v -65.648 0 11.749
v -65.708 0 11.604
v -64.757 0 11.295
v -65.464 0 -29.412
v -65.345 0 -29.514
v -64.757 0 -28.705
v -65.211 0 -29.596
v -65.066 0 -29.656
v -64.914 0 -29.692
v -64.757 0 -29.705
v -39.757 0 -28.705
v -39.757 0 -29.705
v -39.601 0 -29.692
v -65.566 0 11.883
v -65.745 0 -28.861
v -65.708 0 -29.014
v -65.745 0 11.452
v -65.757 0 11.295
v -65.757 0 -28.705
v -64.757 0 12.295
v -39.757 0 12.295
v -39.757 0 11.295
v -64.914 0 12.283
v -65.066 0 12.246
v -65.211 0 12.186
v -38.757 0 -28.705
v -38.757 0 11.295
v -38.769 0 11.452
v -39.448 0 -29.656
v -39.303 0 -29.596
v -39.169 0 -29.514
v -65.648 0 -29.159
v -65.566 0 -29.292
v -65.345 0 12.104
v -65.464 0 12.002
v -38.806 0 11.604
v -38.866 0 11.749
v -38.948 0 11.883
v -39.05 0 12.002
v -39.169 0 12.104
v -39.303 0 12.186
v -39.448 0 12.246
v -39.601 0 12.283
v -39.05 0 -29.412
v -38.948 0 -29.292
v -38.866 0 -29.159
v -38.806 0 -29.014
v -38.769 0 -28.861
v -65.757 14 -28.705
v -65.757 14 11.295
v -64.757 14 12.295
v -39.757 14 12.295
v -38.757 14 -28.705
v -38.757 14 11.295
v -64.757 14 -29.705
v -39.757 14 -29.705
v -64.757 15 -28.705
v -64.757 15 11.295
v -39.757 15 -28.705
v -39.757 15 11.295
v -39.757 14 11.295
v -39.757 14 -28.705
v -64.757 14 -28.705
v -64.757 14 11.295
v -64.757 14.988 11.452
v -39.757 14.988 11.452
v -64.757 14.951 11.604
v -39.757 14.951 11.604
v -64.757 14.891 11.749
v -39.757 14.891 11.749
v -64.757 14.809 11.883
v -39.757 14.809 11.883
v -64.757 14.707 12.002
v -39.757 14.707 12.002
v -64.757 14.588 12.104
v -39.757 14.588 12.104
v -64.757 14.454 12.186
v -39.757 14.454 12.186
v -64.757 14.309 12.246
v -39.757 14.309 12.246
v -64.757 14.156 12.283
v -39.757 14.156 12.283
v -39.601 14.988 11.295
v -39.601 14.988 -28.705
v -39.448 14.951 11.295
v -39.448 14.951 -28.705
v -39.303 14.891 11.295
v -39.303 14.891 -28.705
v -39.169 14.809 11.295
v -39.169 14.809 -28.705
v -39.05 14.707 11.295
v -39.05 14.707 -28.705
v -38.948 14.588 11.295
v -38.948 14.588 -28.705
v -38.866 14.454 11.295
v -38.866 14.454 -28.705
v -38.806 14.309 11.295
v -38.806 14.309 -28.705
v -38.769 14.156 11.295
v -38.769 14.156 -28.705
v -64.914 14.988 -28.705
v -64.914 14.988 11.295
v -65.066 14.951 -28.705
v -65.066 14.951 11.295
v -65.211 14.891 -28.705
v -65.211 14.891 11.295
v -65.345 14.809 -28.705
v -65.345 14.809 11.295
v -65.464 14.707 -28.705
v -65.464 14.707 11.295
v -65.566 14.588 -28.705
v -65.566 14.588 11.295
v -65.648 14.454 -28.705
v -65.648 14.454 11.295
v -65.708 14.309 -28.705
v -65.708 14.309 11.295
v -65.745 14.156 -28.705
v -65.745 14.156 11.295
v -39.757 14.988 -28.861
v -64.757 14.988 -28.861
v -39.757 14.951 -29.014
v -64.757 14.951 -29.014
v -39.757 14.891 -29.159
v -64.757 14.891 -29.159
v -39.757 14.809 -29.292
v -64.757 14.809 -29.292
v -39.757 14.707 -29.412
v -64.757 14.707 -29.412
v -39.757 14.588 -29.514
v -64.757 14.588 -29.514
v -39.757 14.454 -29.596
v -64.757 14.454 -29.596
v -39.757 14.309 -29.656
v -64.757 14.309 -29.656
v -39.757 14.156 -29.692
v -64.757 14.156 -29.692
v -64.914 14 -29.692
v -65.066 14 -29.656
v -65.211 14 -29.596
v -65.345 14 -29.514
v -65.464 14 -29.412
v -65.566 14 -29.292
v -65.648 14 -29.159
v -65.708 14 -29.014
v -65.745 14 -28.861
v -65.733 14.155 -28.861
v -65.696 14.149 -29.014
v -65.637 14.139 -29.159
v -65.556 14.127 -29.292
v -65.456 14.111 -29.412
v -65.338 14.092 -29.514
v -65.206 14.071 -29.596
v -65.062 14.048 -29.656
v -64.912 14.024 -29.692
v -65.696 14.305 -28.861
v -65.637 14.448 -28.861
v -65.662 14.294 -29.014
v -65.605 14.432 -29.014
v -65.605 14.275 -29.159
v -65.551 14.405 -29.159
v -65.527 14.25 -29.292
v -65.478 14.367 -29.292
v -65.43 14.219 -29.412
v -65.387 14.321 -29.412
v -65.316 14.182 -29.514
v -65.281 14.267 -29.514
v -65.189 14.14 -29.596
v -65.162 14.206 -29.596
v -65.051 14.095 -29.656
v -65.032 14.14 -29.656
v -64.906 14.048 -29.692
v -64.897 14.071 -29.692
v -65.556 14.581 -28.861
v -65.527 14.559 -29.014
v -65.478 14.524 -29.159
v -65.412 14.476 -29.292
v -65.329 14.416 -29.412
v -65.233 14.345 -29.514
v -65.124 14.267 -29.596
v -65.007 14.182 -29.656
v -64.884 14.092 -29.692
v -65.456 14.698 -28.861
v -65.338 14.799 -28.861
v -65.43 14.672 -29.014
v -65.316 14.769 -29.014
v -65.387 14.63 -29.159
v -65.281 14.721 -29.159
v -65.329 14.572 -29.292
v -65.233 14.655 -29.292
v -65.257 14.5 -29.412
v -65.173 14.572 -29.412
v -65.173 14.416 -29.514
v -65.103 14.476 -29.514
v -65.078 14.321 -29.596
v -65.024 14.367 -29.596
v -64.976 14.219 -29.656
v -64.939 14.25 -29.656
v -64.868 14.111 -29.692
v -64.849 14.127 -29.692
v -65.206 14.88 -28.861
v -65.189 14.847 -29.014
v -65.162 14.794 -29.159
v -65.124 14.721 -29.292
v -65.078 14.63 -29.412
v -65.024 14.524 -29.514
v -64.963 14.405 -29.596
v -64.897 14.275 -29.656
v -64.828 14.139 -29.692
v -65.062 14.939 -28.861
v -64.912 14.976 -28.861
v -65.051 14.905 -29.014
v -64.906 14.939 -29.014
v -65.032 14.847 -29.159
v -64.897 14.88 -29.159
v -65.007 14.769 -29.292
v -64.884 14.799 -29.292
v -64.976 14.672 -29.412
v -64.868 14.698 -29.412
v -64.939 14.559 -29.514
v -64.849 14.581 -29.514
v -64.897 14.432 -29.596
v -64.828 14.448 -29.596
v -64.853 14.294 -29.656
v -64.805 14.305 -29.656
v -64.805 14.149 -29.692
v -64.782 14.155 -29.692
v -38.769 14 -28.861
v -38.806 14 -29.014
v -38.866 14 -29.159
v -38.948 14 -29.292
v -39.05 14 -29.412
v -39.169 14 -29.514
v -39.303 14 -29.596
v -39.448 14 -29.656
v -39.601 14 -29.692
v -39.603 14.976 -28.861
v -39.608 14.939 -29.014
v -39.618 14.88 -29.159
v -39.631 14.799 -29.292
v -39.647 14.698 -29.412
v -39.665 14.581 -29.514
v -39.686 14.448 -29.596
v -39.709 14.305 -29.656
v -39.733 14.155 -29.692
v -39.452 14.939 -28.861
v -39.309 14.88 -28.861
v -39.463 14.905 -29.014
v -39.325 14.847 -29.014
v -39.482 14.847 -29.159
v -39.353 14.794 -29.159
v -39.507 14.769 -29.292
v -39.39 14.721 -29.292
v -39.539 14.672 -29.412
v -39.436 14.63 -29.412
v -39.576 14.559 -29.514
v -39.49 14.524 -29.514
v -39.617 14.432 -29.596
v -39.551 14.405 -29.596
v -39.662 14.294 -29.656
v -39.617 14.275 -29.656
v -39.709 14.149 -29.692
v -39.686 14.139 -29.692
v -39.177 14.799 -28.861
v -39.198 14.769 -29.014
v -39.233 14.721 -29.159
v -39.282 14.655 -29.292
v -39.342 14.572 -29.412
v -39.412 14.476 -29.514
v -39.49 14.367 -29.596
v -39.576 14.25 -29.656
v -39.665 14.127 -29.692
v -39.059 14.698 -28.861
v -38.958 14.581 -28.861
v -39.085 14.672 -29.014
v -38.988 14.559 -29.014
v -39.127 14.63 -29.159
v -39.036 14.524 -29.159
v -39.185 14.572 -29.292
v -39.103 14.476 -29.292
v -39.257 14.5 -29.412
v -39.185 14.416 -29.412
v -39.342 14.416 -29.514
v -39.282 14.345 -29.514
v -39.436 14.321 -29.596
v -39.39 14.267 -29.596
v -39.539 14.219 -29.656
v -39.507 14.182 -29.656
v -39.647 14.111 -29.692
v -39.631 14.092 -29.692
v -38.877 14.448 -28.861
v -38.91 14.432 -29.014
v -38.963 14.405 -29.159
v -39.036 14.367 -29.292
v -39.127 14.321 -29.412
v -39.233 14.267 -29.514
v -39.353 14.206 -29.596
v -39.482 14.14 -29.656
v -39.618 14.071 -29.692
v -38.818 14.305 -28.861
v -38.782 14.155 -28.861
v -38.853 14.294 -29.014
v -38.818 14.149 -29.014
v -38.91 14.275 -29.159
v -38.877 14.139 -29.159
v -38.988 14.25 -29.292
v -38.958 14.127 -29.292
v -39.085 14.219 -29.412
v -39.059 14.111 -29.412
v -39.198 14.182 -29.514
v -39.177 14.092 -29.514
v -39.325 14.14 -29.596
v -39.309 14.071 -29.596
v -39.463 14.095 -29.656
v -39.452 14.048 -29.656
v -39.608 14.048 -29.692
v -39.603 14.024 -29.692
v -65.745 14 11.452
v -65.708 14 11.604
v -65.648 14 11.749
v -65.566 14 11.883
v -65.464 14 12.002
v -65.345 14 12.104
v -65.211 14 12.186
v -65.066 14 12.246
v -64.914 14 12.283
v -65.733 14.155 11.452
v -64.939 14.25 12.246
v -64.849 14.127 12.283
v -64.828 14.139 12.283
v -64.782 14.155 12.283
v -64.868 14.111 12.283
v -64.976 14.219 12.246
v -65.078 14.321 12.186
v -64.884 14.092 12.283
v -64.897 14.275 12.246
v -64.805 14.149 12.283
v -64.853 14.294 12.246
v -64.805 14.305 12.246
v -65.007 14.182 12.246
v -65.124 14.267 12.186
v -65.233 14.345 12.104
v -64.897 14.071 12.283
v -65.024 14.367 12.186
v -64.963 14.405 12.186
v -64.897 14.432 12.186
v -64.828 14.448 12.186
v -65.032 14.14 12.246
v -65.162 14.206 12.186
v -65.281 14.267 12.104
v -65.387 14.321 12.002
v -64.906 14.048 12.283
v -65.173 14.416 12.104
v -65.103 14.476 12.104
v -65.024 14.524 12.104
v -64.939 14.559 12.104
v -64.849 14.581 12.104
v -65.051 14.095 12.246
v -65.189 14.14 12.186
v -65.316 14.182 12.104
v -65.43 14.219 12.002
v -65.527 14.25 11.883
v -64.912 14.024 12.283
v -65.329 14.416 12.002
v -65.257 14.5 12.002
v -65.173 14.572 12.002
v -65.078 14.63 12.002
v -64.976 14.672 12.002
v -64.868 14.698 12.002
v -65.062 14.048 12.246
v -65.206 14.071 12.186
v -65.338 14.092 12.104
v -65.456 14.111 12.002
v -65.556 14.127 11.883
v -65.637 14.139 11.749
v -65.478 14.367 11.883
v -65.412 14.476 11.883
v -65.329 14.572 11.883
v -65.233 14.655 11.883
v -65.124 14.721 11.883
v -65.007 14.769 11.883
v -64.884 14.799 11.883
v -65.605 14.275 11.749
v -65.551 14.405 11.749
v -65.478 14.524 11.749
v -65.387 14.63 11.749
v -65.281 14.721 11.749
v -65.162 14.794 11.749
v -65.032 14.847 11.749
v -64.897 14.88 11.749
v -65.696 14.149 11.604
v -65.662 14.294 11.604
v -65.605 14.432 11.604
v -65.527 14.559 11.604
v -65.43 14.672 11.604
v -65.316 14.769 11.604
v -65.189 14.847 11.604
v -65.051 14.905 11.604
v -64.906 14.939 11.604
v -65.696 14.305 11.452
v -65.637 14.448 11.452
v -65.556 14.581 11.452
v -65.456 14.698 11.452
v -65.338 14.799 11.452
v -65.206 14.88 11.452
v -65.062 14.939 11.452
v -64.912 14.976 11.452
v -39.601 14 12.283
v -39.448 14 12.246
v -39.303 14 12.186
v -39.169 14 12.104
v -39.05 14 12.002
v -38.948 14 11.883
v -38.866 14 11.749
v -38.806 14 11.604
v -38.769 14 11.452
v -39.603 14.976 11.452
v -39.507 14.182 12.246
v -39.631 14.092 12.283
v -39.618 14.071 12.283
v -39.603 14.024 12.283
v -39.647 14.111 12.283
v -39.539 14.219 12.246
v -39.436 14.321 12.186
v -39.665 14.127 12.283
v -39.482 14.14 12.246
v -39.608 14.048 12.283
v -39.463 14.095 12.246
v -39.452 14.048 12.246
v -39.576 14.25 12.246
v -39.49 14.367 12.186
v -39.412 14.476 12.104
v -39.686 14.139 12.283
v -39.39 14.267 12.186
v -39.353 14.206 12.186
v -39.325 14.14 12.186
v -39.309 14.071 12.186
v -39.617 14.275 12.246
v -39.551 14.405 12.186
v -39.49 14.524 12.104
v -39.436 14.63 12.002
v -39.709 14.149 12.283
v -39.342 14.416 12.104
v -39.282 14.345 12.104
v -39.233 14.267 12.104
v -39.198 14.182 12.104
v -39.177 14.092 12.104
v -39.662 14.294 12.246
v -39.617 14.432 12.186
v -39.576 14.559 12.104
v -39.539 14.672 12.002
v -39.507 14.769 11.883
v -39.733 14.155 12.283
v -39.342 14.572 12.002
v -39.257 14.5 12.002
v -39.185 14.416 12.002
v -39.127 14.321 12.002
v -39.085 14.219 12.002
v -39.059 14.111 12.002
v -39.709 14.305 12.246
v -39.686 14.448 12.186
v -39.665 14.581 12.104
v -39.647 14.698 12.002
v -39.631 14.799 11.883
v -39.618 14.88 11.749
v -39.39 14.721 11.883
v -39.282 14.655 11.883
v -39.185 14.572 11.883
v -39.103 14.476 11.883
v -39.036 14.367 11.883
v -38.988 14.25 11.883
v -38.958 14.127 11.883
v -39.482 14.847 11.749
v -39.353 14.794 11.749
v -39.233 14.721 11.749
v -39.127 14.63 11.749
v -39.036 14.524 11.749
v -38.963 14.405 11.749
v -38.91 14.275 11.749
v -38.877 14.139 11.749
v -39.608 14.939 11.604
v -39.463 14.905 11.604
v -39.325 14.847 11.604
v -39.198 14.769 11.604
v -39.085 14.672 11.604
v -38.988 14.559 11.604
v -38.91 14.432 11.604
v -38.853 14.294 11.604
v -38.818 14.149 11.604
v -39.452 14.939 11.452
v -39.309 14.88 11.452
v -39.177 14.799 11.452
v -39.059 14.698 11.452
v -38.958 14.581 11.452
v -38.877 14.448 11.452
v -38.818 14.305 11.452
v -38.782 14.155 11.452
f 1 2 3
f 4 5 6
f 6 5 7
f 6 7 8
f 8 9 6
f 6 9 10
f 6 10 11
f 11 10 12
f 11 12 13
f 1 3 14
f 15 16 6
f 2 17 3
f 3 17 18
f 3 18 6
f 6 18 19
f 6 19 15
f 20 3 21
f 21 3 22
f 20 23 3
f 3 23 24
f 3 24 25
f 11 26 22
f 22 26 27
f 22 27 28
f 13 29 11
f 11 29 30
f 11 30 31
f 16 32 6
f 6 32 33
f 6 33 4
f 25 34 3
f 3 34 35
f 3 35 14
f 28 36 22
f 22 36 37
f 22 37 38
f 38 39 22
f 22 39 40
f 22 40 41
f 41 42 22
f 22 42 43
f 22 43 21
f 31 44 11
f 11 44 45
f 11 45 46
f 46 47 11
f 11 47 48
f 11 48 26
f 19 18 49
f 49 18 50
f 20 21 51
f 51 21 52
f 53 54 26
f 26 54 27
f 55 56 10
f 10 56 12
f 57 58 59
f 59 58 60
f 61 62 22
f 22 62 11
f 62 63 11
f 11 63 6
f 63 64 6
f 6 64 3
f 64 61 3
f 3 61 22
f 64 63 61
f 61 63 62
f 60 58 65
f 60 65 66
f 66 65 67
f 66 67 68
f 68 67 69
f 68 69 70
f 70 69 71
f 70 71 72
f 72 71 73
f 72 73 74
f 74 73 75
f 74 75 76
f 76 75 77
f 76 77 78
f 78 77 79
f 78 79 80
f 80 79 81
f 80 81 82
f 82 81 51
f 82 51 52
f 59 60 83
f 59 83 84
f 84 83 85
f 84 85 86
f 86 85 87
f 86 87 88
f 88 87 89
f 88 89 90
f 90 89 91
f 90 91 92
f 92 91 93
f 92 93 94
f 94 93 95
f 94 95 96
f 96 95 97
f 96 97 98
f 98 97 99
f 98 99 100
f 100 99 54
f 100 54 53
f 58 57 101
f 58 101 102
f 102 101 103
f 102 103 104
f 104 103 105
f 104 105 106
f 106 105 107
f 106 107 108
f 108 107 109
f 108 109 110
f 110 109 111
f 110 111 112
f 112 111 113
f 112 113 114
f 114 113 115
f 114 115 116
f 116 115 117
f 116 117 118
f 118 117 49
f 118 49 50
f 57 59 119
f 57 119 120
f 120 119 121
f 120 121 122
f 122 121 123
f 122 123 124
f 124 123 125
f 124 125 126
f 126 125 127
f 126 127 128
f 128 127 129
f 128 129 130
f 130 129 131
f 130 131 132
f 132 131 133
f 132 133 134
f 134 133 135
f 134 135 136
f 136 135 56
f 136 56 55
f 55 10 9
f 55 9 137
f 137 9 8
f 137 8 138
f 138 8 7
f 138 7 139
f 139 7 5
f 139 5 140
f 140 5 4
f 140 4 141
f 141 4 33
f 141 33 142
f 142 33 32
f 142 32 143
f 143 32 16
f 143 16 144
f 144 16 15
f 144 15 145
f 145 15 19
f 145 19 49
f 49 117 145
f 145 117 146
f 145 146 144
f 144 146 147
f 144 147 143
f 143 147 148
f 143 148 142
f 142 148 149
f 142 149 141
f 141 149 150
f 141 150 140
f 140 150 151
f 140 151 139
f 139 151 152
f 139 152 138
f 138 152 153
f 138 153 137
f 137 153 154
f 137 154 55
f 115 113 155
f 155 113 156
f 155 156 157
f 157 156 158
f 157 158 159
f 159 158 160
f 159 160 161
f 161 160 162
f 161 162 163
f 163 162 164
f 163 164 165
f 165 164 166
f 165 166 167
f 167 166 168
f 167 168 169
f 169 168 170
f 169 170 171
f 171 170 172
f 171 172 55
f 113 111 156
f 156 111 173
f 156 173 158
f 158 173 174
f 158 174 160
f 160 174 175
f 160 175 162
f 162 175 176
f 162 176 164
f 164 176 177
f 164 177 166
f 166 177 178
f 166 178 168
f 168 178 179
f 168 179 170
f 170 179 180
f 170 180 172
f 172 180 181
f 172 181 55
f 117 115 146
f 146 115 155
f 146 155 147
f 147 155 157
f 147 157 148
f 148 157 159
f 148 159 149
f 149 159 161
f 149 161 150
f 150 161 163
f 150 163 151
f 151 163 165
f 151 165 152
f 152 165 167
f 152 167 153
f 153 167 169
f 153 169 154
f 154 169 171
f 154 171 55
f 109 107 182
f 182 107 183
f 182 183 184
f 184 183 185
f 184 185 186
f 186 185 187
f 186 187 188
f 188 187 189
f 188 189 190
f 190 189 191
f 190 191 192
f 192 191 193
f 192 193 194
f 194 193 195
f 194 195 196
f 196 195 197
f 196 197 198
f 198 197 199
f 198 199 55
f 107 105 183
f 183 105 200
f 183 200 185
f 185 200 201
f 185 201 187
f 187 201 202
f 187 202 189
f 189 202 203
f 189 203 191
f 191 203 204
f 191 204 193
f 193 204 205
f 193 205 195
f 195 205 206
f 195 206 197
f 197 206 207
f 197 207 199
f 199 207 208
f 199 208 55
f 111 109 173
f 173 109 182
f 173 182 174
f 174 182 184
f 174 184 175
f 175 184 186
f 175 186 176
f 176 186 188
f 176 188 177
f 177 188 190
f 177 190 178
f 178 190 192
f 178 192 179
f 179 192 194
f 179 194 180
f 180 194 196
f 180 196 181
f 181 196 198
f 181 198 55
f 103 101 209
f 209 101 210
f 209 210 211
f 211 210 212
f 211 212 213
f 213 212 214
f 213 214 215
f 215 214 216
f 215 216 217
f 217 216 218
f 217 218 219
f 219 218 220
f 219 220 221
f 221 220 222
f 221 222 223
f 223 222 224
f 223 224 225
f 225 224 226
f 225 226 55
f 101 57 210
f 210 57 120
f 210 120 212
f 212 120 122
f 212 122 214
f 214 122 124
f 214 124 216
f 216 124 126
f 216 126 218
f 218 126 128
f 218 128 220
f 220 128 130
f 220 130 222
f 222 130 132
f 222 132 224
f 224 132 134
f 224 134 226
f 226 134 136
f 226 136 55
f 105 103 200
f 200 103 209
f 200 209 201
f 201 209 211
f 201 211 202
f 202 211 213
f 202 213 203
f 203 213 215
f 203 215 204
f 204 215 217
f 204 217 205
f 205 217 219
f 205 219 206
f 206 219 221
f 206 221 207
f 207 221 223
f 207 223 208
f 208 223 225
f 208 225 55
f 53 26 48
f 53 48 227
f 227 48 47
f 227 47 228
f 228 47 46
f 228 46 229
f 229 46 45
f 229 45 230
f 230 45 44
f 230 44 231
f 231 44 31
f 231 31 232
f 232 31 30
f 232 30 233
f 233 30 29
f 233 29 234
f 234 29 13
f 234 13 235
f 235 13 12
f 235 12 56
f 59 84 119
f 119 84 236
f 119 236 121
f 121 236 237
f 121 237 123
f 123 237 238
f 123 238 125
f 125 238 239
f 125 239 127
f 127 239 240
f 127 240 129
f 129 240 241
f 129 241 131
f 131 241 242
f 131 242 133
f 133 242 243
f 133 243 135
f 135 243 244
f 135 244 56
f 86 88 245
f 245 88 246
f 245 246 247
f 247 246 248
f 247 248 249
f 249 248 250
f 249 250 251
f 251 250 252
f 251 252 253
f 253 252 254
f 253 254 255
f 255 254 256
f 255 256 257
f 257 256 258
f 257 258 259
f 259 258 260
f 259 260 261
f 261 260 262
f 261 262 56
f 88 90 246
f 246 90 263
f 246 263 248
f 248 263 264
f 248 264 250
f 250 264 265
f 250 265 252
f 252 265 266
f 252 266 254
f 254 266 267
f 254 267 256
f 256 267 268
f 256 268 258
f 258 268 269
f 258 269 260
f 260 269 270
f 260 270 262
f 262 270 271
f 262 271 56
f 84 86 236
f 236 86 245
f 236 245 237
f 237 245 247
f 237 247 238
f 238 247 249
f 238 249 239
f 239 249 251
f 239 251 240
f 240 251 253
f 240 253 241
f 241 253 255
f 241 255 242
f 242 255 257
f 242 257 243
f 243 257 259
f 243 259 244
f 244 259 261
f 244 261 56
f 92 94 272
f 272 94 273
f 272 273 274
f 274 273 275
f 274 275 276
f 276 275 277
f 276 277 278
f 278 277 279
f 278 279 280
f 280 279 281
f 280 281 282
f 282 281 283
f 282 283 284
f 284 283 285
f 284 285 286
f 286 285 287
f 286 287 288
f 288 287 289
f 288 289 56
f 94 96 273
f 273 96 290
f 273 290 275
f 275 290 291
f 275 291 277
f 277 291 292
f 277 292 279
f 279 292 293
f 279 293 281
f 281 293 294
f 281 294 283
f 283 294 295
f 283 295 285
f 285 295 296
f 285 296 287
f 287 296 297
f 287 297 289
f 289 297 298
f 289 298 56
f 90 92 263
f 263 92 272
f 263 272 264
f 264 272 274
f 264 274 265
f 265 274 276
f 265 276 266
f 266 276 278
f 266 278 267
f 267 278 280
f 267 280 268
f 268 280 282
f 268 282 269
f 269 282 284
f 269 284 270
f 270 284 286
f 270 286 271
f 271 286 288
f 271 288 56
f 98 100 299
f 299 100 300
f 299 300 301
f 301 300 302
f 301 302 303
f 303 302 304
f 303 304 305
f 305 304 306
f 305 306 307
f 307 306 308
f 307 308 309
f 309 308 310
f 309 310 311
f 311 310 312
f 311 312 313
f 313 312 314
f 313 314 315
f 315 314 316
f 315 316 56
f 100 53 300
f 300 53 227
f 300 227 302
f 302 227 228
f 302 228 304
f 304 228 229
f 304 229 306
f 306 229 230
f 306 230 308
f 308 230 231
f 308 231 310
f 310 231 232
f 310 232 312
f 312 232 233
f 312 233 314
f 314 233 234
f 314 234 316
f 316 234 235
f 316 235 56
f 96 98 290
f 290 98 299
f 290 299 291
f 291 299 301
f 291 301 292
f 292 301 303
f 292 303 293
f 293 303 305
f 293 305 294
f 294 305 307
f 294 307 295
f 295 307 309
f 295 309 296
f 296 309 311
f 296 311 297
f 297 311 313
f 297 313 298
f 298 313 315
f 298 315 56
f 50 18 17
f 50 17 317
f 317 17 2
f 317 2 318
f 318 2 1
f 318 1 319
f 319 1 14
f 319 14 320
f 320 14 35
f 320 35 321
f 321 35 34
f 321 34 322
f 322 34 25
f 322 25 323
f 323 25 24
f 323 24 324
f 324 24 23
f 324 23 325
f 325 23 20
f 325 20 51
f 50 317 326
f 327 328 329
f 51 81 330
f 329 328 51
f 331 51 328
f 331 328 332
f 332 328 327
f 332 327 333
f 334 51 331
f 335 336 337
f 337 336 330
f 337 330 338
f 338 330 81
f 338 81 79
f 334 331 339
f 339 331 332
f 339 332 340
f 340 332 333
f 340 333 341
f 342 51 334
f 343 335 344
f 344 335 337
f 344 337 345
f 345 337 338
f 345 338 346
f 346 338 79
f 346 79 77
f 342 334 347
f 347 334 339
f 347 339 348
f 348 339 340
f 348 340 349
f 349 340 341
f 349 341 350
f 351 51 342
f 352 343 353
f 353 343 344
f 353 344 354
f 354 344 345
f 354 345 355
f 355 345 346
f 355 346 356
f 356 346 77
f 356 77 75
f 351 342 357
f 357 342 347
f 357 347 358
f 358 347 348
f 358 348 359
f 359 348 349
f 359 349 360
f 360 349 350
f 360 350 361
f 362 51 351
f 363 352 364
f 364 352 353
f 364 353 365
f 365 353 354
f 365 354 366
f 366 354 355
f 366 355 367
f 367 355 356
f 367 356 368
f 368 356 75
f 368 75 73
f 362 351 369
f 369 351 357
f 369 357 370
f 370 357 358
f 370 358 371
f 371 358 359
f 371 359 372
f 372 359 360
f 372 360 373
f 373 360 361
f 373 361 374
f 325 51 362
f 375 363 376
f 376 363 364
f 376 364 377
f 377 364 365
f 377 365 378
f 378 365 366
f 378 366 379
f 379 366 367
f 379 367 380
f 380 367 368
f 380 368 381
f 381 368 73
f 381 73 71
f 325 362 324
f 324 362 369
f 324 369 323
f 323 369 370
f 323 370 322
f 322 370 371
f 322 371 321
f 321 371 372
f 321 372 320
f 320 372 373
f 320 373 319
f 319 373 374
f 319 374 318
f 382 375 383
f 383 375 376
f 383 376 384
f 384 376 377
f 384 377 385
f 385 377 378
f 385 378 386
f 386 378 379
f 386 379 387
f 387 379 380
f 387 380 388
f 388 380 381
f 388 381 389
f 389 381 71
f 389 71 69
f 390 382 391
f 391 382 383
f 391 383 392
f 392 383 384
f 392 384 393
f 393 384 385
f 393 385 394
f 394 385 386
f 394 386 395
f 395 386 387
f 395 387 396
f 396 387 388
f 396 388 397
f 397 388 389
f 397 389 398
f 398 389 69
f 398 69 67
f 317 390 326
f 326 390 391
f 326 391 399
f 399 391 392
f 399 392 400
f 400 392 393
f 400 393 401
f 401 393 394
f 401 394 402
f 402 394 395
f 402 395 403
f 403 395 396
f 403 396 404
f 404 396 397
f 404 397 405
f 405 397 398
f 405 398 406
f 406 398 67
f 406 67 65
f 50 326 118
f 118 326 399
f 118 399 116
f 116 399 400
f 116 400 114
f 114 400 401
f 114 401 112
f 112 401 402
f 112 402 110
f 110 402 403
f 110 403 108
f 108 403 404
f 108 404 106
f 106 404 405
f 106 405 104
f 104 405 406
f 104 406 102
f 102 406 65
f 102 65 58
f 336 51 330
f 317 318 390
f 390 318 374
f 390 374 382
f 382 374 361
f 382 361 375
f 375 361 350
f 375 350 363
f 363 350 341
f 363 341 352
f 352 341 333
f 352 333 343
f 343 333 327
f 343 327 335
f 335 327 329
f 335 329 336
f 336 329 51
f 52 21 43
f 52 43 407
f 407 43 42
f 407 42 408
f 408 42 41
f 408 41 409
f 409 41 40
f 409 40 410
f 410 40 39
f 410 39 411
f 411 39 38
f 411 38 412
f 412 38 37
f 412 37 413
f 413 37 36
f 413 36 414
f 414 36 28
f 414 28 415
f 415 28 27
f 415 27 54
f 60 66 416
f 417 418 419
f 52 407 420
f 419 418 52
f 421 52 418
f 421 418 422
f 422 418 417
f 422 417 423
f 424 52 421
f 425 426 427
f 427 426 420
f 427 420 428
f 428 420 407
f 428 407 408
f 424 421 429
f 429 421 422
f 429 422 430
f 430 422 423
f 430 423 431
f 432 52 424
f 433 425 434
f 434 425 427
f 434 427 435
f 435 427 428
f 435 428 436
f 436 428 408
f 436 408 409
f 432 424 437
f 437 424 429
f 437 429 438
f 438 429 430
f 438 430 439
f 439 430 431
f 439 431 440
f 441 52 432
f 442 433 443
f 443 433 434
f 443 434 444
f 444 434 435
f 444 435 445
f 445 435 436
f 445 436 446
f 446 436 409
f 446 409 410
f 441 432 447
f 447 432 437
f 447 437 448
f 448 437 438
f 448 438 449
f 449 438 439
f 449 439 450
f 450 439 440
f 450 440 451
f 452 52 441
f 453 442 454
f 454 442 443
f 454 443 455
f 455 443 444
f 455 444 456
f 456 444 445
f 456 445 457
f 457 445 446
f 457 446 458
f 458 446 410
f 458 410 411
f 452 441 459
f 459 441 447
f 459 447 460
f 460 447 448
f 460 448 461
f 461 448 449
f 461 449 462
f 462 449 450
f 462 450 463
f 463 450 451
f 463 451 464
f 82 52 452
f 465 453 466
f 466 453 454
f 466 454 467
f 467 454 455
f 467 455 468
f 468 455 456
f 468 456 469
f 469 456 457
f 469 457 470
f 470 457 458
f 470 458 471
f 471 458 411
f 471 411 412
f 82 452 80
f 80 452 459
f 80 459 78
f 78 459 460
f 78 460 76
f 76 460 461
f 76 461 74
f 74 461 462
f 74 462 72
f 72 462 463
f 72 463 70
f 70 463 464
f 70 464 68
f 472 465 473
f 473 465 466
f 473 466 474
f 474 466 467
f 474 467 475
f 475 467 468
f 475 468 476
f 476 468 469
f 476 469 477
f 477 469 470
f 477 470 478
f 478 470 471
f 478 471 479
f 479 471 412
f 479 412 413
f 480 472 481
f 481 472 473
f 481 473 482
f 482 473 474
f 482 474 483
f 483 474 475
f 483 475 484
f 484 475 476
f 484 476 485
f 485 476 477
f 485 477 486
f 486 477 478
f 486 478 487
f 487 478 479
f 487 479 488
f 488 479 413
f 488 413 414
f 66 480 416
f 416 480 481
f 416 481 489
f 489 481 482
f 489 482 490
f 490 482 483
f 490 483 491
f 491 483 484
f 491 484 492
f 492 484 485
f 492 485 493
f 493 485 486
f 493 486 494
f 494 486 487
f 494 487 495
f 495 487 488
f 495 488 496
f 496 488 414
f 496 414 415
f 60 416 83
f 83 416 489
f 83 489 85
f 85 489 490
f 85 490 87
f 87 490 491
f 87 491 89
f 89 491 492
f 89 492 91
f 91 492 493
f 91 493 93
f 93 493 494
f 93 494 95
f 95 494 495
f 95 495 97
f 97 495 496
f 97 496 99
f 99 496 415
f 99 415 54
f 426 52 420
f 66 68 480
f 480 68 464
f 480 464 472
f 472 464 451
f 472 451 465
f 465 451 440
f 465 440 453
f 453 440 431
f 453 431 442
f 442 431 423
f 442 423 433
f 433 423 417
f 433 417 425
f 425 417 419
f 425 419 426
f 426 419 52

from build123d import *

# Parameters (mm, degrees)
SKETCH_1_W          = 27
SKETCH_1_H          = 42
EXTRUDE_1_DEPTH     = 15
SKETCH_4_W          = 25
SKETCH_4_H          = 40
CUT_EXTRUDE_1_DEPTH = 14
FILLET_1_R          = 1
FILLET_3_R          = 1


with BuildPart() as part:
    # ｽｹｯﾁ1 → ﾎﾞｽ - 押し出し1 (new body)
    with BuildSketch(Plane(origin=(0, 0, 0), x_dir=(1, 0, 0), z_dir=(0, 1, 0))):
        with Locations((-52.257137385, 8.704647457)):
            Rectangle(SKETCH_1_W, SKETCH_1_H)
    extrude(amount=EXTRUDE_1_DEPTH)

    # ｽｹｯﾁ4 → ｶｯﾄ - 押し出し1 (cut)
    with BuildSketch(Plane(origin=(0, 0, 0), x_dir=(1, 0, 0), z_dir=(0, 1, 0))):
        with Locations((-52.257137385, 8.704647457)):
            Rectangle(SKETCH_4_W, SKETCH_4_H)
    extrude(amount=CUT_EXTRUDE_1_DEPTH, mode=Mode.SUBTRACT)

    # ﾌｨﾚｯﾄ1
    fillet_1_edges = [part.edges().sort_by_distance(p)[0] for p in [
        (-38.757137385, 15, -8.704647457),
        (-52.257137385, 15, -29.704647457),
        (-65.757137385, 15, -8.704647457),
        (-52.257137385, 15, 12.295352543),
    ]]
    fillet(fillet_1_edges, radius=FILLET_1_R)

    # ﾌｨﾚｯﾄ3
    # the kernel refuses this fillet: 1 mm, written as the material it takes off along each edge
    with BuildSketch(Plane(origin=(-39.757137385, 14, 11.295352543), x_dir=(0, 0, 1), z_dir=(1, 0, 0))) as fillet_3_piece_1_section:
        Polygon((0, 0), (FILLET_3_R, 0), (FILLET_3_R, -FILLET_3_R), (0, -FILLET_3_R), align=None)
    fillet_3_piece_1 = extrude(amount=FILLET_3_R, mode=Mode.PRIVATE)
    fillet_3_piece_1 = fillet_3_piece_1 - Plane(origin=(-39.757137385, 14, 11.295352543), x_dir=(0, -0.7071067811865475, -0.7071067811865475), z_dir=(1, 0, 0)) * Sphere(FILLET_3_R, mode=Mode.PRIVATE)
    add(fillet_3_piece_1, mode=Mode.SUBTRACT)
    with BuildSketch(Plane(origin=(-64.757137385, 14, 11.295352543), x_dir=(0, 0, 1), z_dir=(-1, 0, 0))) as fillet_3_piece_2_section:
        Polygon((0, 0), (FILLET_3_R, 0), (FILLET_3_R, FILLET_3_R), (0, FILLET_3_R), align=None)
    fillet_3_piece_2 = extrude(amount=FILLET_3_R, mode=Mode.PRIVATE)
    fillet_3_piece_2 = fillet_3_piece_2 - Plane(origin=(-64.757137385, 14, 11.295352543), x_dir=(0, -0.7071067811865475, -0.7071067811865475), z_dir=(-1, 0, 0)) * Sphere(FILLET_3_R, mode=Mode.PRIVATE)
    add(fillet_3_piece_2, mode=Mode.SUBTRACT)
    with BuildSketch(Plane(origin=(-39.757137385, 14, -28.704647457), x_dir=(1, 0, 0), z_dir=(0, 0, -1))) as fillet_3_piece_3_section:
        Polygon((0, 0), (FILLET_3_R, 0), (FILLET_3_R, -FILLET_3_R), (0, -FILLET_3_R), align=None)
    fillet_3_piece_3 = extrude(amount=FILLET_3_R, mode=Mode.PRIVATE)
    fillet_3_piece_3 = fillet_3_piece_3 - Plane(origin=(-39.757137385, 14, -28.704647457), x_dir=(-0.7071067811865475, -0.7071067811865475, 0), z_dir=(0, 0, -1)) * Sphere(FILLET_3_R, mode=Mode.PRIVATE)
    add(fillet_3_piece_3, mode=Mode.SUBTRACT)
    with BuildSketch(Plane(origin=(-64.757137385, 14, -28.704647457), x_dir=(-1, 0, 0), z_dir=(0, 0, -1))) as fillet_3_piece_4_section:
        Polygon((0, 0), (FILLET_3_R, 0), (FILLET_3_R, FILLET_3_R), (0, FILLET_3_R), align=None)
    fillet_3_piece_4 = extrude(amount=FILLET_3_R, mode=Mode.PRIVATE)
    fillet_3_piece_4 = fillet_3_piece_4 - Plane(origin=(-64.757137385, 14, -28.704647457), x_dir=(0.7071067811865475, -0.7071067811865475, 0), z_dir=(0, 0, -1)) * Sphere(FILLET_3_R, mode=Mode.PRIVATE)
    add(fillet_3_piece_4, mode=Mode.SUBTRACT)
    with BuildSketch(Plane(origin=(-65.757137385, -2.5, -29.704647457), x_dir=(1, 0, 0), z_dir=(0, 1, 0)), Plane(origin=(-65.757137385, -2.5, 12.295352543), x_dir=(0, 0, -1), z_dir=(0, 1, 0))) as fillet_3_piece_5:
        with BuildLine():
            CenterArc((FILLET_3_R, -FILLET_3_R), FILLET_3_R, 90, 90)
            Line((0, -FILLET_3_R), (0, 0))
            Line((0, 0), (FILLET_3_R, 0))
        make_face()
    extrude(amount=16.5, mode=Mode.SUBTRACT)
    with BuildSketch(Plane(origin=(-38.757137385, -2.5, -29.704647457), x_dir=(-1, 0, 0), z_dir=(0, 1, 0)), Plane(origin=(-38.757137385, -2.5, 12.295352543), x_dir=(0, 0, -1), z_dir=(0, 1, 0))) as fillet_3_piece_6:
        with BuildLine():
            CenterArc((FILLET_3_R, FILLET_3_R), FILLET_3_R, 180, 90)
            Line((0, FILLET_3_R), (0, 0))
            Line((0, 0), (FILLET_3_R, 0))
        make_face()
    extrude(amount=16.5, mode=Mode.SUBTRACT)


solid = part.part
